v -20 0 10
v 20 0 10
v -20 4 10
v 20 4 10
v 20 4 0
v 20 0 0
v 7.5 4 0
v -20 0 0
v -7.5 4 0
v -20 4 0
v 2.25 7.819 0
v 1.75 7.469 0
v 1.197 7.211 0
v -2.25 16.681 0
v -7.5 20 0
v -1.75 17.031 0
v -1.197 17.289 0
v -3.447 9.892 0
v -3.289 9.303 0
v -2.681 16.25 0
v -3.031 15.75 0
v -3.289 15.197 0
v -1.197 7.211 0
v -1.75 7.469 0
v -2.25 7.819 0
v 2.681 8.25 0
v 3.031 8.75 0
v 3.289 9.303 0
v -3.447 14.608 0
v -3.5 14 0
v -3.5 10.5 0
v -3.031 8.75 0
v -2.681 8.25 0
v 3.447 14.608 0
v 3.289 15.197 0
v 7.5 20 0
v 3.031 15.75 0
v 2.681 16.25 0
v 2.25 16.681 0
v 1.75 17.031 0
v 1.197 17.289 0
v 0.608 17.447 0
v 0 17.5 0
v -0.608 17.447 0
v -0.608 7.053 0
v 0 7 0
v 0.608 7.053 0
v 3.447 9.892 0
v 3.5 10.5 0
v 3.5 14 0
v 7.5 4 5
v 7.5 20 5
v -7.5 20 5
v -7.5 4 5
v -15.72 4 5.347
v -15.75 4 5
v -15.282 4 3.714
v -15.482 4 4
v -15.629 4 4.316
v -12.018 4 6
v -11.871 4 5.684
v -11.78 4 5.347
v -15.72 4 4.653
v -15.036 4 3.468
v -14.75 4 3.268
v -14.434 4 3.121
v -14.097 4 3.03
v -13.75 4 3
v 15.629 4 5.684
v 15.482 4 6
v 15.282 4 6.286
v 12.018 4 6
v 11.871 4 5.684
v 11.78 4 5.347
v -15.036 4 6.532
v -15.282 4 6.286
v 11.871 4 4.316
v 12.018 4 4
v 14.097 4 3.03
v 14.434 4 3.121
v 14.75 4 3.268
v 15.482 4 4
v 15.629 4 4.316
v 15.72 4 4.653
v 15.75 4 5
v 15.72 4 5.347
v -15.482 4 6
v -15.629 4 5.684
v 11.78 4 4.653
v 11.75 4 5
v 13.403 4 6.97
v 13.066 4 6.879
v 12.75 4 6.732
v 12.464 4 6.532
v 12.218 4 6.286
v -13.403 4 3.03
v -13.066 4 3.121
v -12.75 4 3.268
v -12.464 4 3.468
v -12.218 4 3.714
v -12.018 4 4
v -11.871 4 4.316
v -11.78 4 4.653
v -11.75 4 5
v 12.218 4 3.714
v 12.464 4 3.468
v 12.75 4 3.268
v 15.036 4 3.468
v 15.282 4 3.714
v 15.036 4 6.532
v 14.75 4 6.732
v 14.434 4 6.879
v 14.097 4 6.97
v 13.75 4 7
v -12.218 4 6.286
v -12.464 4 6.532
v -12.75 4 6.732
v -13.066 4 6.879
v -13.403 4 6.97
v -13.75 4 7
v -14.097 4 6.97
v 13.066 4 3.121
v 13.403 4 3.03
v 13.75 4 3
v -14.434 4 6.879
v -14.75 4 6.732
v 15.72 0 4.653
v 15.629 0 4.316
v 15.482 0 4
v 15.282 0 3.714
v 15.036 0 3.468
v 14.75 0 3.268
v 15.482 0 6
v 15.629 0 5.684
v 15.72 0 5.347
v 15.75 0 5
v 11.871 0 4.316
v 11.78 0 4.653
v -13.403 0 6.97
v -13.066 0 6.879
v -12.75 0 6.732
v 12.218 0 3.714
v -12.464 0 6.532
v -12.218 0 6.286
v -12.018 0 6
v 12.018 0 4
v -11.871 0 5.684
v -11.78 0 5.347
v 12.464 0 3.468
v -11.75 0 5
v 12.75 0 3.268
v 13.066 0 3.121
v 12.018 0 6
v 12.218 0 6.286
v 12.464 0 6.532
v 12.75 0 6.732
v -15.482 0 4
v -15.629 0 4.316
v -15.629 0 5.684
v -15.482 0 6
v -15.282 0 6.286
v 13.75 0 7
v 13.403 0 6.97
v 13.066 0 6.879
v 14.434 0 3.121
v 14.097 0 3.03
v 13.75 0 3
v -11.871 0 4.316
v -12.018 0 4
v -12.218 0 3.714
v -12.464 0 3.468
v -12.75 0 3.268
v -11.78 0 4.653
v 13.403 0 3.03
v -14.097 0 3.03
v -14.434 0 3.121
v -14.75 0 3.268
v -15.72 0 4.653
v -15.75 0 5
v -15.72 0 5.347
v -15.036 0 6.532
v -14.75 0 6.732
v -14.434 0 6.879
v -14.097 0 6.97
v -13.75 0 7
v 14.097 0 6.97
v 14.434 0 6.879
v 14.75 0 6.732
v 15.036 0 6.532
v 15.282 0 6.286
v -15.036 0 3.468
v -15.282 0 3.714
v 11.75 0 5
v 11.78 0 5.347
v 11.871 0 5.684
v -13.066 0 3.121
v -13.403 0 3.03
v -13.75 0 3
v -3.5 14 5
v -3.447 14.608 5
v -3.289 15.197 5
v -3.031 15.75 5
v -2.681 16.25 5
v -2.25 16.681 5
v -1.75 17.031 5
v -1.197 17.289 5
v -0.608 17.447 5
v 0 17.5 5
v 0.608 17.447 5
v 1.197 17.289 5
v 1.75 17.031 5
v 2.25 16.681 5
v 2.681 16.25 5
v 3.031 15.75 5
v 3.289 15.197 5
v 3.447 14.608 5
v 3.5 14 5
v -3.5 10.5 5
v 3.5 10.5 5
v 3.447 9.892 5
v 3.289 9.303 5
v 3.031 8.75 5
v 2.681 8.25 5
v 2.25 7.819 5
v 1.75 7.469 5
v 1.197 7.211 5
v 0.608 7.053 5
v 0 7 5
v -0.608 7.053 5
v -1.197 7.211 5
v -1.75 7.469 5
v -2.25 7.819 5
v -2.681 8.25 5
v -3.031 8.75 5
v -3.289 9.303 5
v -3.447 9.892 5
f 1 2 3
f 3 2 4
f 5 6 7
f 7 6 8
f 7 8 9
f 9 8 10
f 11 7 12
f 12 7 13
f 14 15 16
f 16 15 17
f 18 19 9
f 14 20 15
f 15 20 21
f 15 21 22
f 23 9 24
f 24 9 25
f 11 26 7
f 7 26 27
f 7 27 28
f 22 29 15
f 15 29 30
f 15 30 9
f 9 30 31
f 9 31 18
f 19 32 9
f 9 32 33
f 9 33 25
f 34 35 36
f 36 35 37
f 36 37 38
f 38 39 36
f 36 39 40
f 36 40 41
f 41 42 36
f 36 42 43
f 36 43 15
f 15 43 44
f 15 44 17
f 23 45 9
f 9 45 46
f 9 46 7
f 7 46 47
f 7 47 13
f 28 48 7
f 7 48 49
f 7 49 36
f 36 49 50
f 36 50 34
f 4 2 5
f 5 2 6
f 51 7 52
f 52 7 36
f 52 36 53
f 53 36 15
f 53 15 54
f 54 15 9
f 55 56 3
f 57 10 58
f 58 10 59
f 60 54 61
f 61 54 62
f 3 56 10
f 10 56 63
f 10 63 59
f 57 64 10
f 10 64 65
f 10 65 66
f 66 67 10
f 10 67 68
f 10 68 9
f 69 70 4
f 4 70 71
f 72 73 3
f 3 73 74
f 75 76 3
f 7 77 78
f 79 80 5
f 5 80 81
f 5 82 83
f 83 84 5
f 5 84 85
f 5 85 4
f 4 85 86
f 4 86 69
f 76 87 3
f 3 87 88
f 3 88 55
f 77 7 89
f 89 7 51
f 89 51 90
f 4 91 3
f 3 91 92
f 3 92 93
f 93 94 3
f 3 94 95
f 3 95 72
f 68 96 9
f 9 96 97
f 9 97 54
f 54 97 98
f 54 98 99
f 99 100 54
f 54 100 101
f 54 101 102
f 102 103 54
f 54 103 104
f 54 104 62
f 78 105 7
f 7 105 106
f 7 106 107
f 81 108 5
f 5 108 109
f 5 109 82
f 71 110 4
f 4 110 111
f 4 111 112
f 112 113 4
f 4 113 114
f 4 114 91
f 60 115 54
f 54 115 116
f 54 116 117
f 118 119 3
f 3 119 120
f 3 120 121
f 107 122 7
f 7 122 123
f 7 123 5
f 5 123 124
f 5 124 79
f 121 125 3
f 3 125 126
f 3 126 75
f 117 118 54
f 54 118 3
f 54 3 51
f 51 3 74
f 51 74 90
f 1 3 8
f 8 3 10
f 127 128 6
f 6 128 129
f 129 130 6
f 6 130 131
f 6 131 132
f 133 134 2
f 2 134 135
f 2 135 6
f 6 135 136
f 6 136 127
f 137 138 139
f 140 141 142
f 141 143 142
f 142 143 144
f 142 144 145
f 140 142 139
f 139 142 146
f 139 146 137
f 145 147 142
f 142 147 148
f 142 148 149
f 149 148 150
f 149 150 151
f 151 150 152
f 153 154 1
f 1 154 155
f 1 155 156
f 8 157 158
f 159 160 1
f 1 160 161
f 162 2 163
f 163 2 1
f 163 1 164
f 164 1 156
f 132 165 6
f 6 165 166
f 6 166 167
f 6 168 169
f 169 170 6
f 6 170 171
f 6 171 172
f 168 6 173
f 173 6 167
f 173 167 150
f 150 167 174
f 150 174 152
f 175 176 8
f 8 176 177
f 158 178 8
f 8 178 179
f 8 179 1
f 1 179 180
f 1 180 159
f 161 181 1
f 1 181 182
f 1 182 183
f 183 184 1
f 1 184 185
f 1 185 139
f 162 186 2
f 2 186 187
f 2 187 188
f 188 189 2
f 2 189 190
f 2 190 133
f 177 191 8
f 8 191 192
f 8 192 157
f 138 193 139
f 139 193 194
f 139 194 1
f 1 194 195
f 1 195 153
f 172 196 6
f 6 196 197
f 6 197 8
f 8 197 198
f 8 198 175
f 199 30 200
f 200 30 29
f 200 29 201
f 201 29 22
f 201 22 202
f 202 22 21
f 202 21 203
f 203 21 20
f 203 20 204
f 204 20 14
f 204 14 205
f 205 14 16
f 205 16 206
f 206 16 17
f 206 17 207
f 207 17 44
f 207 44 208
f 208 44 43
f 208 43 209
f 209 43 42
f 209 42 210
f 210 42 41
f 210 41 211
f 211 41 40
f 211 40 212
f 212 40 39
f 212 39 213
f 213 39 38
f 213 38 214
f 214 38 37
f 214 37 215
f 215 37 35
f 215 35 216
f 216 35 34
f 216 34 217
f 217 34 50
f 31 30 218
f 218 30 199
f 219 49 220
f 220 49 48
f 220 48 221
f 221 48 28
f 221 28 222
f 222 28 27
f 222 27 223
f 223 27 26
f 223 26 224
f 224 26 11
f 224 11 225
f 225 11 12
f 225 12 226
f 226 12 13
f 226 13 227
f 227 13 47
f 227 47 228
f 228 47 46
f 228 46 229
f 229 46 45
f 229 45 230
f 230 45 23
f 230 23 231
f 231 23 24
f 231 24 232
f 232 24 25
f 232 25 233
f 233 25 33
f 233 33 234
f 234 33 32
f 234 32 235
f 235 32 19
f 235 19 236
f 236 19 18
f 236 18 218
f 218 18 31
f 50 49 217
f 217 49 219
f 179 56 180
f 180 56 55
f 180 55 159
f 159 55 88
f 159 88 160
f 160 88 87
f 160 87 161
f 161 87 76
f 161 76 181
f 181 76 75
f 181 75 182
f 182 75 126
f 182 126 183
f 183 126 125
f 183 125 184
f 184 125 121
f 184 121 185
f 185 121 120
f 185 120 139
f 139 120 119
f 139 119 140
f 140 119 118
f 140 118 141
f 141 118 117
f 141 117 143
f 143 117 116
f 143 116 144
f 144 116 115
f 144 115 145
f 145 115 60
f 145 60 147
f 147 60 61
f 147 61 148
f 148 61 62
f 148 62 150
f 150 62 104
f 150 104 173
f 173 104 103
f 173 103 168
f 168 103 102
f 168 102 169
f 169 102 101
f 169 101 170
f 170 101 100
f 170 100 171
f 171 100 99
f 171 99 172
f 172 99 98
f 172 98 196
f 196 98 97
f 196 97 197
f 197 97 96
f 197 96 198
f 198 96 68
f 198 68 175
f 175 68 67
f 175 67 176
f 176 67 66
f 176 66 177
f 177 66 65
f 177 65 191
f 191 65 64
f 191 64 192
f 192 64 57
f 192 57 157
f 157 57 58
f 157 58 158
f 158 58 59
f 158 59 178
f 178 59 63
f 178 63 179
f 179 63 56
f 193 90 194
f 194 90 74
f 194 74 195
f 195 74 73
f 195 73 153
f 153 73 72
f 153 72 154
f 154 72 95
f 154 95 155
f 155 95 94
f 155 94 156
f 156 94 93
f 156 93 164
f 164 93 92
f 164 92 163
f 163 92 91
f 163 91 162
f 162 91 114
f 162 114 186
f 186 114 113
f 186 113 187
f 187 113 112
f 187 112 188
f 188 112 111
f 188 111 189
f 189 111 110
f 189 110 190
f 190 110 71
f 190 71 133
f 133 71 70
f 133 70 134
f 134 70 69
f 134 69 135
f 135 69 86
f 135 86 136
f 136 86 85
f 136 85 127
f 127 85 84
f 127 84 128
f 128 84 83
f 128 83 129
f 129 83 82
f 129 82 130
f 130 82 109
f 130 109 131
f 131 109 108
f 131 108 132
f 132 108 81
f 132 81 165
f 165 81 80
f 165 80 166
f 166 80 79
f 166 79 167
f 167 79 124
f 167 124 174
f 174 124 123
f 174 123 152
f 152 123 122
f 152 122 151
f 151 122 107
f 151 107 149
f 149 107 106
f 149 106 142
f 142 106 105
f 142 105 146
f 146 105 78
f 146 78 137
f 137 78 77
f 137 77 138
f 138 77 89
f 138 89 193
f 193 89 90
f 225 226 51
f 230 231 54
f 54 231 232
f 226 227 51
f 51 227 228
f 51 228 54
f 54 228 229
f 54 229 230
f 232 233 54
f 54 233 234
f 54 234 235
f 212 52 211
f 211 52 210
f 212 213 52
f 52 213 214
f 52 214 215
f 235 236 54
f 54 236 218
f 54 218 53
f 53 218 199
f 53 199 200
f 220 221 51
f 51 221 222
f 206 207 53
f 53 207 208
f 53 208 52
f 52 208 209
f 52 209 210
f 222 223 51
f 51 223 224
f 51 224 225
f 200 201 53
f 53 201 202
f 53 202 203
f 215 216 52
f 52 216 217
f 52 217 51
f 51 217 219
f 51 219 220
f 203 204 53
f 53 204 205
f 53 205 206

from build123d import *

# Parameters (mm, degrees)
RESSALTO_EXTRUS_O2_DEPTH = 10
ESBO_O5_R                = 2
CORTE_EXTRUS_O3_DEPTH    = 15
ESBO_O6_W                = 5
ESBO_O6_H                = 16
CORTE_EXTRUS_O4_DEPTH    = 15


with BuildPart() as part:
    # Esboço4 → Ressalto-extrusão2 (new body)
    with BuildSketch(Plane.XY):
        Polygon((-7.5, 20), (-7.5, 4), (-20, 4), (-20, 0), (20, 0), (20, 4), (7.5, 4), (7.5, 20), align=None)
        with BuildLine():
            Line((3.5, 14), (3.5, 10.5))
            ThreePointArc((3.5, 10.5), (0, 7), (-3.5, 10.5))
            Line((-3.5, 10.5), (-3.5, 14))
            ThreePointArc((-3.5, 14), (0, 17.5), (3.5, 14))
        make_face(mode=Mode.SUBTRACT)
    extrude(amount=RESSALTO_EXTRUS_O2_DEPTH)

    # Esboço5 → Corte-extrusão3 (cut)
    with BuildSketch(Plane(origin=(0, 4, 0), x_dir=(1, 0, 0), z_dir=(0, 1, 0))):
        with Locations((-13.75, -5)):
            Circle(ESBO_O5_R)
        with Locations((13.75, -5)):
            Circle(ESBO_O5_R)
    extrude(amount=-CORTE_EXTRUS_O3_DEPTH, mode=Mode.SUBTRACT)

    # Esboço6 → Corte-extrusão4 (cut)
    with BuildSketch(Plane.ZY.offset(7.5)):
        with Locations((7.5, 12)):
            Rectangle(ESBO_O6_W, ESBO_O6_H)
    extrude(amount=-CORTE_EXTRUS_O4_DEPTH, mode=Mode.SUBTRACT)


solid = part.part
